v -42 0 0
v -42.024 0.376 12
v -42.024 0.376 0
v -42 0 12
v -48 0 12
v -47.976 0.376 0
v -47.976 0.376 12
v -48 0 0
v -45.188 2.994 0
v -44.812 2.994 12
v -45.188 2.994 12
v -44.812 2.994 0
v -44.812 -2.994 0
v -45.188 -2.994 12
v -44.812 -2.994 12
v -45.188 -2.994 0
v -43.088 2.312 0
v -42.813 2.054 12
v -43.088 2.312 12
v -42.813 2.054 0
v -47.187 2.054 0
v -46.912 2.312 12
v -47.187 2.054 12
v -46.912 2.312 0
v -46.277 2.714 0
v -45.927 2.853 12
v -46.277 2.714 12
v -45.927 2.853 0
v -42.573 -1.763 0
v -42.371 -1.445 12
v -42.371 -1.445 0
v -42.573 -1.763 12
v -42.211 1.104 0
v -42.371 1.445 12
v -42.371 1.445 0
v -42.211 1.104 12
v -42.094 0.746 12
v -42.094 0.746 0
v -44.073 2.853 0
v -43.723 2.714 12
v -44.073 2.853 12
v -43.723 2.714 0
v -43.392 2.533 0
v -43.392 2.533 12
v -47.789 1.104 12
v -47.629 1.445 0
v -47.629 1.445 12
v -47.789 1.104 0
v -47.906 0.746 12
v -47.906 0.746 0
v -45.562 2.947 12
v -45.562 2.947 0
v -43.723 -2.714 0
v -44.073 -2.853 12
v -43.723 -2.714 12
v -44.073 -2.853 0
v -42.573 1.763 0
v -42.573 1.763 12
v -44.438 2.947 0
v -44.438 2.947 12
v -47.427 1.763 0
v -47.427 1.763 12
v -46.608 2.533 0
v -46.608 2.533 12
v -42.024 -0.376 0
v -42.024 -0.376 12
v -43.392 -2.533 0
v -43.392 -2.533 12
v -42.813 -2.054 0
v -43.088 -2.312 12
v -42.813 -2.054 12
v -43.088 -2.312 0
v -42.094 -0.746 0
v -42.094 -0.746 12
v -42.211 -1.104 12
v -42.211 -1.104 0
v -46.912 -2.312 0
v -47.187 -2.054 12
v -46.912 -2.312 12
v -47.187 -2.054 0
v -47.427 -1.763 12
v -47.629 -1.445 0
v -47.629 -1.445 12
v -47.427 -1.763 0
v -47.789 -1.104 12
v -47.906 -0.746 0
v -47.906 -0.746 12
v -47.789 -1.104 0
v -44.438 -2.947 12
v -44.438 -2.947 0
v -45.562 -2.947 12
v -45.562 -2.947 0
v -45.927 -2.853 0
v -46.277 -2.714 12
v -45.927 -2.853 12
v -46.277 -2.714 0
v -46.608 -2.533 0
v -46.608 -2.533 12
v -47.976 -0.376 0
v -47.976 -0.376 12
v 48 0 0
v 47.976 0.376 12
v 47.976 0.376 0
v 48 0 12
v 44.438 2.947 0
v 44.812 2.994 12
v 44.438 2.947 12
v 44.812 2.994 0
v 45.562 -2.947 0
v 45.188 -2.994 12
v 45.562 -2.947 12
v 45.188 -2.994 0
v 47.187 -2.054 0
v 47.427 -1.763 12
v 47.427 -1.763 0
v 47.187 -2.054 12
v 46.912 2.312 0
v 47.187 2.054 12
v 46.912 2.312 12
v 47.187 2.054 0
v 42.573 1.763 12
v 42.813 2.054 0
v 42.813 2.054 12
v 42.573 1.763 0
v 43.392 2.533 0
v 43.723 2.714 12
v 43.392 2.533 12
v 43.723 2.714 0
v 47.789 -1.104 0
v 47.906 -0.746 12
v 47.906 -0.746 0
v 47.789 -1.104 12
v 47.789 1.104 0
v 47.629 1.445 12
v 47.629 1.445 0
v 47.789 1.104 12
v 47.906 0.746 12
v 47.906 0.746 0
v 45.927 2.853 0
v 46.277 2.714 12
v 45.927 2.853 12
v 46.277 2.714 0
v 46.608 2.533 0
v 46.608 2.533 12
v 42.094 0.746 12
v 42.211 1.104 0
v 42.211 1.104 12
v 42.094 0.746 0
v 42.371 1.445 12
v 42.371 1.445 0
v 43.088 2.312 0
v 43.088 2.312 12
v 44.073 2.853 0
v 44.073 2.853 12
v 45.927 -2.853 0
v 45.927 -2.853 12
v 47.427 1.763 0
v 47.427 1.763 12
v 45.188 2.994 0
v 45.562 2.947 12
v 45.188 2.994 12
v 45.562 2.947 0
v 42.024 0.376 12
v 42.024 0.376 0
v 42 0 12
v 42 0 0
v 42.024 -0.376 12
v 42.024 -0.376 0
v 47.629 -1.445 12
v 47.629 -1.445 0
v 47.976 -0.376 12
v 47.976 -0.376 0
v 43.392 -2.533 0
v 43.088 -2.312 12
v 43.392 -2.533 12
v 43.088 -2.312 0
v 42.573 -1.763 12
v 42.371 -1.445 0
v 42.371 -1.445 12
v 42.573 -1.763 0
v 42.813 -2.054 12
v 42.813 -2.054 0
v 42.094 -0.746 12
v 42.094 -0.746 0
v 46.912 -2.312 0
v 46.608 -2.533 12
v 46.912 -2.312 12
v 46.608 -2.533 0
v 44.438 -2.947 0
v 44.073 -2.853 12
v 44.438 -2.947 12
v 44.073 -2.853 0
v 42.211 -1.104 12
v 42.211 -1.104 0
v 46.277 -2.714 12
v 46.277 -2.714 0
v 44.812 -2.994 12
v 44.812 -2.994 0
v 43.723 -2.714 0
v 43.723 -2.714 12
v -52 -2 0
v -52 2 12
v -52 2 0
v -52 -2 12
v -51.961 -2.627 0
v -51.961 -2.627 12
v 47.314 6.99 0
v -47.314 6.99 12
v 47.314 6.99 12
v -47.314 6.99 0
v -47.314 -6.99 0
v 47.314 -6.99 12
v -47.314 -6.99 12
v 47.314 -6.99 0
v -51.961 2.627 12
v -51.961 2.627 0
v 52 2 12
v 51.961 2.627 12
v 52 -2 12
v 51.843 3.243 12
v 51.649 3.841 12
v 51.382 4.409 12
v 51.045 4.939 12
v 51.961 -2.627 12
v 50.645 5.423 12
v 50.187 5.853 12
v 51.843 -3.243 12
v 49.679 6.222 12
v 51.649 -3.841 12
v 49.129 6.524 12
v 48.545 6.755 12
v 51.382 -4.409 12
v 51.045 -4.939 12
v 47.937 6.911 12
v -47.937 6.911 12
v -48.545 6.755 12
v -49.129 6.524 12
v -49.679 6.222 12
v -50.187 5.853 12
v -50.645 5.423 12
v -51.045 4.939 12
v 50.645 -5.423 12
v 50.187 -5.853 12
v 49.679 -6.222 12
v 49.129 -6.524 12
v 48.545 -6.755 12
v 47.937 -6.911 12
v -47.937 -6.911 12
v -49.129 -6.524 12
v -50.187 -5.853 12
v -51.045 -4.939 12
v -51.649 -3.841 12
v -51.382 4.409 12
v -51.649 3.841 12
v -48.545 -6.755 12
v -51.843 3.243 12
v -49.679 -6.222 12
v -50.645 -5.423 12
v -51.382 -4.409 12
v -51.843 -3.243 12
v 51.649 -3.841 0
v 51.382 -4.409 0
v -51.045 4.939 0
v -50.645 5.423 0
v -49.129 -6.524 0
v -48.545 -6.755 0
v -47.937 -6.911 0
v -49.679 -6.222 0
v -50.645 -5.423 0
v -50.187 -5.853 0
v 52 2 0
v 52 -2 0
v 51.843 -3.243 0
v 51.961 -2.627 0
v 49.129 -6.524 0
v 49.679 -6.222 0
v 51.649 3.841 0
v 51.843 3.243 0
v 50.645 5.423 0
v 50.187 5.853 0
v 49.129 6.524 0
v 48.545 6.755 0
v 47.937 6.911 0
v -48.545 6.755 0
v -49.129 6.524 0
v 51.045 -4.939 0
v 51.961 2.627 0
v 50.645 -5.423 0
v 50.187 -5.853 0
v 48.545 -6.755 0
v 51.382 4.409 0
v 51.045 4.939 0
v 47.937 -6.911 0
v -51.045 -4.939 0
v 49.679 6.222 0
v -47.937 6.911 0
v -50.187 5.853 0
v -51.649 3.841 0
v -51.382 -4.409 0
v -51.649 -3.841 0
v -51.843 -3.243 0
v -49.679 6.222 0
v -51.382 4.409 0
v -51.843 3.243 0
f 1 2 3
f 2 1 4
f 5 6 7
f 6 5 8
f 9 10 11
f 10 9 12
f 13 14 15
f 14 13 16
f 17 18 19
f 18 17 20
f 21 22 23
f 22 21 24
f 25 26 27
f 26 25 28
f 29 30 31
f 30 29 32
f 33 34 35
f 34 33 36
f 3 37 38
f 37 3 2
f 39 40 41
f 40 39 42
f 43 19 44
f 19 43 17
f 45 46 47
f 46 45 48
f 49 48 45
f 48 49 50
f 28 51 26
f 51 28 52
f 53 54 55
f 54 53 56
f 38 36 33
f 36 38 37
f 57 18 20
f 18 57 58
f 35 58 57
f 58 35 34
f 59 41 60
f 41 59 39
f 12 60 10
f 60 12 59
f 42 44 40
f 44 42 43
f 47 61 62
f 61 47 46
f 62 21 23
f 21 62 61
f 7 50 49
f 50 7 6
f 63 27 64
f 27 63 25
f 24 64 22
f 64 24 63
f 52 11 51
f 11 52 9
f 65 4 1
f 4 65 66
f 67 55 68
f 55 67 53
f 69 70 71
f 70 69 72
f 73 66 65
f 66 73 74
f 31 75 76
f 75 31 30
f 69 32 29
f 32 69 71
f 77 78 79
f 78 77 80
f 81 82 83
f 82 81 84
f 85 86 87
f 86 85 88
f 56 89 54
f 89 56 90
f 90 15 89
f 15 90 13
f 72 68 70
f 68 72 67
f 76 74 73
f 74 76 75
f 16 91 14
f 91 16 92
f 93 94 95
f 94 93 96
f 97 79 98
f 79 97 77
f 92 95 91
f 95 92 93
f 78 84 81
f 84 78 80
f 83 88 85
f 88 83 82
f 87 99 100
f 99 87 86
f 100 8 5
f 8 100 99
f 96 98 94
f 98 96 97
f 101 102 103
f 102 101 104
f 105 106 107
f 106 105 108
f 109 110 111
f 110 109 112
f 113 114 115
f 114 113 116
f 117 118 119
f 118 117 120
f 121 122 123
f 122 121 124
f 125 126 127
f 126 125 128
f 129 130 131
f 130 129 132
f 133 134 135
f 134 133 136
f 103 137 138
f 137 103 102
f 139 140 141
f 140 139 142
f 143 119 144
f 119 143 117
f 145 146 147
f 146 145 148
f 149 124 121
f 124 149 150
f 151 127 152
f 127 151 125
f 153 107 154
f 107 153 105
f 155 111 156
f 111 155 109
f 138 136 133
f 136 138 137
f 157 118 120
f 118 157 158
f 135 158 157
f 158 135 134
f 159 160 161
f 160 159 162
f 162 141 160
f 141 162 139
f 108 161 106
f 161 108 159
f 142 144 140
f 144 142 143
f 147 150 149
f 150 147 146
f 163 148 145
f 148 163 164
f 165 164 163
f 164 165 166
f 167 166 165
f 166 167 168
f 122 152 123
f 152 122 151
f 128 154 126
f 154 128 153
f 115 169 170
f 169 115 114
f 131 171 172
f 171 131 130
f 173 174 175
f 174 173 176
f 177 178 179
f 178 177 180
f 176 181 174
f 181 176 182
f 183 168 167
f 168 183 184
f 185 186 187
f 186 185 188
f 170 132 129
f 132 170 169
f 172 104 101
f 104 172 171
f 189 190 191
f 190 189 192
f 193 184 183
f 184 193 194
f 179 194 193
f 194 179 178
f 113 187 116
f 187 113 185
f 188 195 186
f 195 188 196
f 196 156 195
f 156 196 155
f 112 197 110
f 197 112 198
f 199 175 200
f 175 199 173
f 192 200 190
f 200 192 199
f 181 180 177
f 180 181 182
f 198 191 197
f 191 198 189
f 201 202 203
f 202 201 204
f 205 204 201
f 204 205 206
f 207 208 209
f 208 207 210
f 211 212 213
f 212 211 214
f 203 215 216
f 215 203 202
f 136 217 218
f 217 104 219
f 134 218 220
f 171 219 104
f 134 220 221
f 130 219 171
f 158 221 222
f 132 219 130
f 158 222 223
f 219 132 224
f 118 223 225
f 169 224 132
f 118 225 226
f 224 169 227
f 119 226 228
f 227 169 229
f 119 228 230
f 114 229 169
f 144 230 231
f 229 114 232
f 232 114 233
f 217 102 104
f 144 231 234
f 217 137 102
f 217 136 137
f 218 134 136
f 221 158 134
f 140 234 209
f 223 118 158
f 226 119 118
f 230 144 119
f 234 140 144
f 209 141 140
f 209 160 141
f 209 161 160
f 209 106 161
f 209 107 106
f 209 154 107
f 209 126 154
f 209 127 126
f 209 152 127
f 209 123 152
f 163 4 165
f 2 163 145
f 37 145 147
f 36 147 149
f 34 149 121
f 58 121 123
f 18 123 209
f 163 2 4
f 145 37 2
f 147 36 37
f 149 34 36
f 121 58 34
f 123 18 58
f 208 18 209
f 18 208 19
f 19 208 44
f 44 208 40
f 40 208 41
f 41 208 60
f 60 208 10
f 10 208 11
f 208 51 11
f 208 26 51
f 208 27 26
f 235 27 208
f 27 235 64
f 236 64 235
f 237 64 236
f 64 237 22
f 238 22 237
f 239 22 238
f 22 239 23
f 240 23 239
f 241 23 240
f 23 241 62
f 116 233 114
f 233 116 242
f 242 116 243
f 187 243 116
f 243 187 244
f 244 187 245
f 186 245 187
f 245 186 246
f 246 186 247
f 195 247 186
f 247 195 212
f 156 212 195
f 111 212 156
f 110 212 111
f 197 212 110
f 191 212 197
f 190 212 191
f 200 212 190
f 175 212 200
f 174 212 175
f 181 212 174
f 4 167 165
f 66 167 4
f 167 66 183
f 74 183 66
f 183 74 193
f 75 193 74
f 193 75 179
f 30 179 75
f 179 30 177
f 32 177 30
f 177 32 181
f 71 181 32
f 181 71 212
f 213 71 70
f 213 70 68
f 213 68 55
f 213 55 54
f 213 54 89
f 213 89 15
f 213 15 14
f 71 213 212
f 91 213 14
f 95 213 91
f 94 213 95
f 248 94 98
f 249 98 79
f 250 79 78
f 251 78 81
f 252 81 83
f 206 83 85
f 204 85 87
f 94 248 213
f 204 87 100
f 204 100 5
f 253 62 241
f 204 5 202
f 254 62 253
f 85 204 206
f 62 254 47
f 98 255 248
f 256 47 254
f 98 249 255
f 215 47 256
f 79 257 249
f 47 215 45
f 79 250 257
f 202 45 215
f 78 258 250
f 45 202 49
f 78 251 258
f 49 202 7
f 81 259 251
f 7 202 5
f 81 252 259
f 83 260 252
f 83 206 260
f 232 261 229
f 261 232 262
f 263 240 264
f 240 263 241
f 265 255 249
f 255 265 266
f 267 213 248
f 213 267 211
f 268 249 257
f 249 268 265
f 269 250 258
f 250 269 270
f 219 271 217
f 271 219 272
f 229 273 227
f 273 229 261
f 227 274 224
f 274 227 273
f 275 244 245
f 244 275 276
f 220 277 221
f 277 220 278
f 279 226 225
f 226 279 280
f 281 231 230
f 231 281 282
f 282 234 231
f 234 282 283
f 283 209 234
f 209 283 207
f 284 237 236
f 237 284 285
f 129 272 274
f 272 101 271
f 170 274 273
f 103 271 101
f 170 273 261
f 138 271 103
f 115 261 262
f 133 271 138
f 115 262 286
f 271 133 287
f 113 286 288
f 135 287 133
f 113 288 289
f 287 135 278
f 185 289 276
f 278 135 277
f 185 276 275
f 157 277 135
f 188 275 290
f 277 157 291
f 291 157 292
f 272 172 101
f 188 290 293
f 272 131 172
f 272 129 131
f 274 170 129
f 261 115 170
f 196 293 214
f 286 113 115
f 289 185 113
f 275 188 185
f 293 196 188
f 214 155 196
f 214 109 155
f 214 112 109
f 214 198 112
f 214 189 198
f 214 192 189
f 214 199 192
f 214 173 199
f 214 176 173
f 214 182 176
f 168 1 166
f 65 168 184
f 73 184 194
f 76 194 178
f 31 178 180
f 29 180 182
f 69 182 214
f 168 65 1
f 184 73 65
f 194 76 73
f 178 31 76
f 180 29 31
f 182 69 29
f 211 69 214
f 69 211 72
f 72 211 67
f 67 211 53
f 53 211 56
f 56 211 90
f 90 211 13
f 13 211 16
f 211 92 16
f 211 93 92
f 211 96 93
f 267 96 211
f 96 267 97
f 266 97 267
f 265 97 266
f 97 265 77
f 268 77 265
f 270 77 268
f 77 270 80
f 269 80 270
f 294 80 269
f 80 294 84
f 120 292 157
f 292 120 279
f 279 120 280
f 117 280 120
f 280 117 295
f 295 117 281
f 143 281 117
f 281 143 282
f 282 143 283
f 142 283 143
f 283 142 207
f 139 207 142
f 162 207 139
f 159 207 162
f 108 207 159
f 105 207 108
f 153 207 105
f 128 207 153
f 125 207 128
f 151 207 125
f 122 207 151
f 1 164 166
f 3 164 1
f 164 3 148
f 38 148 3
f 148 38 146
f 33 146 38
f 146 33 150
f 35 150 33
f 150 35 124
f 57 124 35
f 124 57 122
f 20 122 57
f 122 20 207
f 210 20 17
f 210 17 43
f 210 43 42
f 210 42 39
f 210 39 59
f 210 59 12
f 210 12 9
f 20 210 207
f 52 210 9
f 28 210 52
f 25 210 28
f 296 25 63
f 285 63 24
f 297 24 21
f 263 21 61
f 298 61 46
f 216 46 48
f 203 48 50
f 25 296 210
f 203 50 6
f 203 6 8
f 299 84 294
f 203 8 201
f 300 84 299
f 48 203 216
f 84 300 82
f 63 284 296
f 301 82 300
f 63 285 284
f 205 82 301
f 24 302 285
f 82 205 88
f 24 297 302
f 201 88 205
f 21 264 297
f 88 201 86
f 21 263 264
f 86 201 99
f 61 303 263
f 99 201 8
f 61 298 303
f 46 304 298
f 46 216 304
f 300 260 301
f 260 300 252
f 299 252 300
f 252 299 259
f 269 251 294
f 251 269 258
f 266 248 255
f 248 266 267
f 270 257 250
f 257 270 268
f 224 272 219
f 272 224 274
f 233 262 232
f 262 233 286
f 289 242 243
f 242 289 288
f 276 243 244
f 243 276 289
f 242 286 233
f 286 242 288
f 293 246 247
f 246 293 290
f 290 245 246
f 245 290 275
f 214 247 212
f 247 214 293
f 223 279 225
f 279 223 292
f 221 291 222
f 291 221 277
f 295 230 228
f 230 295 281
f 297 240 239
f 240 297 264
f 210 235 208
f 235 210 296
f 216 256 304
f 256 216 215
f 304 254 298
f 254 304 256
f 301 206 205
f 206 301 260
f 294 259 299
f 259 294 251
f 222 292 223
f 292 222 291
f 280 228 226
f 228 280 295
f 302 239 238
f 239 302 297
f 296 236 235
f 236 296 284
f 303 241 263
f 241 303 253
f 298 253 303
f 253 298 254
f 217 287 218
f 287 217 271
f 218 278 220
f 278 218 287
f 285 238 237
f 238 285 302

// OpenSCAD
$fn = 50;


difference() {
	union() {
		hull() {
			translate(v = [-47.0000000000, 2.0000000000, 0]) {
				cylinder(h = 12, r = 5);
			}
			translate(v = [47.0000000000, 2.0000000000, 0]) {
				cylinder(h = 12, r = 5);
			}
			translate(v = [-47.0000000000, -2.0000000000, 0]) {
				cylinder(h = 12, r = 5);
			}
			translate(v = [47.0000000000, -2.0000000000, 0]) {
				cylinder(h = 12, r = 5);
			}
		}
	}
	union() {
		translate(v = [-45.0000000000, 0.0000000000, -100.0000000000]) {
			cylinder(h = 200, r = 3.0000000000);
		}
		translate(v = [-45.0000000000, 0.0000000000, -100.0000000000]) {
			cylinder(h = 200, r = 3.0000000000);
		}
		translate(v = [45.0000000000, 0.0000000000, -100.0000000000]) {
			cylinder(h = 200, r = 3.0000000000);
		}
		translate(v = [45.0000000000, 0.0000000000, -100.0000000000]) {
			cylinder(h = 200, r = 3.0000000000);
		}
	}
}
